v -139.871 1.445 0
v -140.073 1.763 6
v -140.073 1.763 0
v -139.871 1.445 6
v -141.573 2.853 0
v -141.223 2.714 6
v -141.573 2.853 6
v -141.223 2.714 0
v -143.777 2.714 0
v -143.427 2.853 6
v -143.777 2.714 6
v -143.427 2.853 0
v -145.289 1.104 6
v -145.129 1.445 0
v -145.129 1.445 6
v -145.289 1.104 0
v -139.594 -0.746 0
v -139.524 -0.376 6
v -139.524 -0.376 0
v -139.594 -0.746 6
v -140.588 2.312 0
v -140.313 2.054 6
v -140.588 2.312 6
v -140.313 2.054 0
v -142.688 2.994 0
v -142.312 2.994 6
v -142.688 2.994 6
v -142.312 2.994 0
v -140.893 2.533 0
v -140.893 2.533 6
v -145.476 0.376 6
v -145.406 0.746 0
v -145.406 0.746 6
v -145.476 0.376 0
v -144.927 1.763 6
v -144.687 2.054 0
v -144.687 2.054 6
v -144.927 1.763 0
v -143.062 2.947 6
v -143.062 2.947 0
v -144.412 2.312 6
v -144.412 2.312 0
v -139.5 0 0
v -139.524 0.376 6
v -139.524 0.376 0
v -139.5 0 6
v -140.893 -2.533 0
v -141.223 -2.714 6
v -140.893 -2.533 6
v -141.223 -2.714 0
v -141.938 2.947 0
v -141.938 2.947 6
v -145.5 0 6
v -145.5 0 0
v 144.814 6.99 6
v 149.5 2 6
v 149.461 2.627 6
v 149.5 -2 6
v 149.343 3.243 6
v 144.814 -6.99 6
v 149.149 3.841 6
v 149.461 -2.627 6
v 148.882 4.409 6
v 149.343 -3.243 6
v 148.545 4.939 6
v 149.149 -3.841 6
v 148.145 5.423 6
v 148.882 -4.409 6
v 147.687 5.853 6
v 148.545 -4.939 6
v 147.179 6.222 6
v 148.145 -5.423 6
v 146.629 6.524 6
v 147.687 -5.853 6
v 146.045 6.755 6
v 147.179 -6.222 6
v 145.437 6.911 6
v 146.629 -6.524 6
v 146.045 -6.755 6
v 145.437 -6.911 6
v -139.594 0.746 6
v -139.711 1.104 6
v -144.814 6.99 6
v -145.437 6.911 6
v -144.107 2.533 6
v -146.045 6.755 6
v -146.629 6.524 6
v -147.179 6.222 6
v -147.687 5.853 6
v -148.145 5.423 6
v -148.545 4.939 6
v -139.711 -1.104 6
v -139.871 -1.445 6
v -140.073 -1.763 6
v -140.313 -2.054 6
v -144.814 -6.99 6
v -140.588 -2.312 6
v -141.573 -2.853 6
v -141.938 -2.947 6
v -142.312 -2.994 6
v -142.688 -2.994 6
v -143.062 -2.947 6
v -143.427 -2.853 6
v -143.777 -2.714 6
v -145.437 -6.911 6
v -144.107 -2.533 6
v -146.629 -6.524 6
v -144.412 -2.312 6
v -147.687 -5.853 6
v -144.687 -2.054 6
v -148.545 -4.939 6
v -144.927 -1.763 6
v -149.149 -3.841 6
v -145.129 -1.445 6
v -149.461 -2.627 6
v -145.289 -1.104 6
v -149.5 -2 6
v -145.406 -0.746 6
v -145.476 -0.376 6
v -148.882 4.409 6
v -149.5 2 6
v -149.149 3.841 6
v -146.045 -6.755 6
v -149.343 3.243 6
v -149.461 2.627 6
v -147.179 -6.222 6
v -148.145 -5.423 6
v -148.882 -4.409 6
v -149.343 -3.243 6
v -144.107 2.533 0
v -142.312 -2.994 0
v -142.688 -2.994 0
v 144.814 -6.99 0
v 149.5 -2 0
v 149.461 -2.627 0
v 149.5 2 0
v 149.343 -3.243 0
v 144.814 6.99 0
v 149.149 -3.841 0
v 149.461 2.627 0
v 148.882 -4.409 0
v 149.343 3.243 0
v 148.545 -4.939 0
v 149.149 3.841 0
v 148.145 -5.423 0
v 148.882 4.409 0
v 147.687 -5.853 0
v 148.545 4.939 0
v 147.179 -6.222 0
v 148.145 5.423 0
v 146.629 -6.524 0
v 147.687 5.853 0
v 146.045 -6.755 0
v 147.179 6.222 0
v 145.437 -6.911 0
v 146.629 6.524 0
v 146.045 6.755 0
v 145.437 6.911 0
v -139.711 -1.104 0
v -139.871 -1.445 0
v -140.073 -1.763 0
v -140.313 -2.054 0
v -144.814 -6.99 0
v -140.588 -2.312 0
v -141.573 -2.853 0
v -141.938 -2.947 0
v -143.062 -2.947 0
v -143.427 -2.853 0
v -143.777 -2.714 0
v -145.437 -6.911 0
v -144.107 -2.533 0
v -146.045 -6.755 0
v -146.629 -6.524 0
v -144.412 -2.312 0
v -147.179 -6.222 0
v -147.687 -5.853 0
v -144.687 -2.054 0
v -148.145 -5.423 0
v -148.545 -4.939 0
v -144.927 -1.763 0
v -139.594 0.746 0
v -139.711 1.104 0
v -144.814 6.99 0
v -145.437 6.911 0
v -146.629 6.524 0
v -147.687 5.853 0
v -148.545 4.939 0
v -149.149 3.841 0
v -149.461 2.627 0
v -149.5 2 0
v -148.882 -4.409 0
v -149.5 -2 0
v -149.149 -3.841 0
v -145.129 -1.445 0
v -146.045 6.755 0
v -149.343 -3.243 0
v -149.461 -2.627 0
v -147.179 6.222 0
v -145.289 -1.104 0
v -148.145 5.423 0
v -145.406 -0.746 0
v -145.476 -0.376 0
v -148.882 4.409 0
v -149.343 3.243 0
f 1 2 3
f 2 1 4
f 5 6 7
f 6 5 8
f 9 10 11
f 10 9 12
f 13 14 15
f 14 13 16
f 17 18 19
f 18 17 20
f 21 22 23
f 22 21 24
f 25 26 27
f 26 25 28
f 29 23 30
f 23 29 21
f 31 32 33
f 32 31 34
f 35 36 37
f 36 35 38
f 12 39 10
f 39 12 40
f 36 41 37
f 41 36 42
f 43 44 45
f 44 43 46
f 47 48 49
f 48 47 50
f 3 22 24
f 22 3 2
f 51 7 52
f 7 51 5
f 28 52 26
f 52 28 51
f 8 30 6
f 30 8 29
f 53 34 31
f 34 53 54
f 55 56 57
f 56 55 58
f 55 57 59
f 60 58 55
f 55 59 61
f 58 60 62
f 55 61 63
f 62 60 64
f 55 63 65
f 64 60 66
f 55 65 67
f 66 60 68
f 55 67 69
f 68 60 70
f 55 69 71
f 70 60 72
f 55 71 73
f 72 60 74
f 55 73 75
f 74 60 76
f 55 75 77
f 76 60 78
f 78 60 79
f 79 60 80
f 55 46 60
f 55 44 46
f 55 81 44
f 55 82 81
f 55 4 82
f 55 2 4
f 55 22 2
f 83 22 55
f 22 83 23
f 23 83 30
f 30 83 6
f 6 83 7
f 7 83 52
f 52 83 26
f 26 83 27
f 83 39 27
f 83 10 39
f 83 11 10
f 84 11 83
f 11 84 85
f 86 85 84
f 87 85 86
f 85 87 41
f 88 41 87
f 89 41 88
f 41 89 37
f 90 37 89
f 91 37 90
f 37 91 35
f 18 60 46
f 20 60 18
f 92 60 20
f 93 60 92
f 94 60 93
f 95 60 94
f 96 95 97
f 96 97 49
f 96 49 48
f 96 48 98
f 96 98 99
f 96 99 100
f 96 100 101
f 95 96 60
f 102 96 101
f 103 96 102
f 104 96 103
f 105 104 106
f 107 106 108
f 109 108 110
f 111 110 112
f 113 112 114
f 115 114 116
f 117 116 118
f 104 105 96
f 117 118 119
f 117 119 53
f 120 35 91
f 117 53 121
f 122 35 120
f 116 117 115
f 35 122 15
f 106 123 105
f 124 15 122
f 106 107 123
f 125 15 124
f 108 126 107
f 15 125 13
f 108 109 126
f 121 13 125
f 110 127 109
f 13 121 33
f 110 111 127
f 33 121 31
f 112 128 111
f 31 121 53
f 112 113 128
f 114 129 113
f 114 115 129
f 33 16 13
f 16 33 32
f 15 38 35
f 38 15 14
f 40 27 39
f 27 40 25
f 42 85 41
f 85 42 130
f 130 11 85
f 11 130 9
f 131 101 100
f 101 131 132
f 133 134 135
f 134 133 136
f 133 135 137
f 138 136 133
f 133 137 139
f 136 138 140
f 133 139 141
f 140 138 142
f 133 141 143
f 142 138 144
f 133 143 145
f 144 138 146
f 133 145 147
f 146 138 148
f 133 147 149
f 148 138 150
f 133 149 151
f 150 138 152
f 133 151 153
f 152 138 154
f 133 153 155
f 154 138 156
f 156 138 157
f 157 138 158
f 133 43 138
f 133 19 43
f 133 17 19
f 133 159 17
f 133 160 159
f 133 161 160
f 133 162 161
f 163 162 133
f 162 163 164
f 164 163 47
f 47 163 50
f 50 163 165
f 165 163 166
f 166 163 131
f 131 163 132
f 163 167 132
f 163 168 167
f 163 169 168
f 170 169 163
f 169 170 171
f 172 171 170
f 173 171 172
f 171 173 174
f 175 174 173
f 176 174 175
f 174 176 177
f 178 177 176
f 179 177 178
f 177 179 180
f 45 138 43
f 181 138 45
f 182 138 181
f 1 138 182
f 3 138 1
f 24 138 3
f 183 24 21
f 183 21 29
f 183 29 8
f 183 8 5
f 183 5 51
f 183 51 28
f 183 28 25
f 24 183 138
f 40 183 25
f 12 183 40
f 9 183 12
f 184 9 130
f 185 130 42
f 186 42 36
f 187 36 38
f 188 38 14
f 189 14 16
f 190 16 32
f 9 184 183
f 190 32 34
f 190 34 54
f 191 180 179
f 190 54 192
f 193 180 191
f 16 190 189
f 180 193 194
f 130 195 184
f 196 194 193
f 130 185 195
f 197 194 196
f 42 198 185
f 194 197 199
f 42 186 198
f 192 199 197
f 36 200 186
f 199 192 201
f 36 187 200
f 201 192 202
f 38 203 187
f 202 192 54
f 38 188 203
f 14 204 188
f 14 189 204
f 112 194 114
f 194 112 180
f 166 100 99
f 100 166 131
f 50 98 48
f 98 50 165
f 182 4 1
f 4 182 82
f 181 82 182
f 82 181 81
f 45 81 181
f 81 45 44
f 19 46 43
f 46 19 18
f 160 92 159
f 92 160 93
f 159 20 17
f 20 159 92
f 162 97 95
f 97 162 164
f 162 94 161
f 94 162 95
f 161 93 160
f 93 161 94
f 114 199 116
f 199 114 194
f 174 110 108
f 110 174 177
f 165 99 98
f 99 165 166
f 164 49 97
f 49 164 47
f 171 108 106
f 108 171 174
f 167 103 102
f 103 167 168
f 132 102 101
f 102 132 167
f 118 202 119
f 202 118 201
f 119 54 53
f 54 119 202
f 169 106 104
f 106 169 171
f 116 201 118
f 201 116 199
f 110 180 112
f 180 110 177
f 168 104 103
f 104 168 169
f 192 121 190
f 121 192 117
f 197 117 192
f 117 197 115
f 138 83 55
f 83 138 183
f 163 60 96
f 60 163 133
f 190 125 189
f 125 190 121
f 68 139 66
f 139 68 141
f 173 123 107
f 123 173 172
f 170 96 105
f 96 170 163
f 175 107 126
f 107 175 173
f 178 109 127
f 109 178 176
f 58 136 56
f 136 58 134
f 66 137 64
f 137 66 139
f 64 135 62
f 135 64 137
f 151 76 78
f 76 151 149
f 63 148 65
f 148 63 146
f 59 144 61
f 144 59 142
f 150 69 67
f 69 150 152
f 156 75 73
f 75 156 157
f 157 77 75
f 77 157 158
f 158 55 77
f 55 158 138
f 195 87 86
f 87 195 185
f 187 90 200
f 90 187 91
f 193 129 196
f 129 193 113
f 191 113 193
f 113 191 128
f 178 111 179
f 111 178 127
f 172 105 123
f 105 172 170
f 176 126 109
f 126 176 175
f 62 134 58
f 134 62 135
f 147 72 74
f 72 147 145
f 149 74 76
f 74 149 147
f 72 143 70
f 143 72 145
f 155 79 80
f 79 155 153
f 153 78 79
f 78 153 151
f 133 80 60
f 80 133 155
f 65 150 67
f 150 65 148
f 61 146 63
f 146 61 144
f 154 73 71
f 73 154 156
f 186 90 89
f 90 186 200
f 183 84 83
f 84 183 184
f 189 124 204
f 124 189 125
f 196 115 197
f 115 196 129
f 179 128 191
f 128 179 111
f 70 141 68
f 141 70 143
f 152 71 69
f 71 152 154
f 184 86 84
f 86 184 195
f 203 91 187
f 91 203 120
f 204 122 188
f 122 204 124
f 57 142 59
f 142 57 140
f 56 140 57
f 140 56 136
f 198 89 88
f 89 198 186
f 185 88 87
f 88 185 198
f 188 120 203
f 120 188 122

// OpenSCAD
$fn = 50;


difference() {
	union() {
		hull() {
			translate(v = [-144.5000000000, 2.0000000000, 0]) {
				cylinder(h = 6, r = 5);
			}
			translate(v = [144.5000000000, 2.0000000000, 0]) {
				cylinder(h = 6, r = 5);
			}
			translate(v = [-144.5000000000, -2.0000000000, 0]) {
				cylinder(h = 6, r = 5);
			}
			translate(v = [144.5000000000, -2.0000000000, 0]) {
				cylinder(h = 6, r = 5);
			}
		}
	}
	union() {
		translate(v = [-142.5000000000, 0.0000000000, 0]) {
			cylinder(h = 6, r = 3.0000000000);
		}
		translate(v = [-142.5000000000, 0.0000000000, 0]) {
			cylinder(h = 6, r = 1.5000000000);
		}
		translate(v = [-142.5000000000, 0.0000000000, 0]) {
			cylinder(h = 6, r = 1.5000000000);
		}
		translate(v = [-142.5000000000, 0.0000000000, 0]) {
			cylinder(h = 6, r = 1.5000000000);
		}
	}
}
